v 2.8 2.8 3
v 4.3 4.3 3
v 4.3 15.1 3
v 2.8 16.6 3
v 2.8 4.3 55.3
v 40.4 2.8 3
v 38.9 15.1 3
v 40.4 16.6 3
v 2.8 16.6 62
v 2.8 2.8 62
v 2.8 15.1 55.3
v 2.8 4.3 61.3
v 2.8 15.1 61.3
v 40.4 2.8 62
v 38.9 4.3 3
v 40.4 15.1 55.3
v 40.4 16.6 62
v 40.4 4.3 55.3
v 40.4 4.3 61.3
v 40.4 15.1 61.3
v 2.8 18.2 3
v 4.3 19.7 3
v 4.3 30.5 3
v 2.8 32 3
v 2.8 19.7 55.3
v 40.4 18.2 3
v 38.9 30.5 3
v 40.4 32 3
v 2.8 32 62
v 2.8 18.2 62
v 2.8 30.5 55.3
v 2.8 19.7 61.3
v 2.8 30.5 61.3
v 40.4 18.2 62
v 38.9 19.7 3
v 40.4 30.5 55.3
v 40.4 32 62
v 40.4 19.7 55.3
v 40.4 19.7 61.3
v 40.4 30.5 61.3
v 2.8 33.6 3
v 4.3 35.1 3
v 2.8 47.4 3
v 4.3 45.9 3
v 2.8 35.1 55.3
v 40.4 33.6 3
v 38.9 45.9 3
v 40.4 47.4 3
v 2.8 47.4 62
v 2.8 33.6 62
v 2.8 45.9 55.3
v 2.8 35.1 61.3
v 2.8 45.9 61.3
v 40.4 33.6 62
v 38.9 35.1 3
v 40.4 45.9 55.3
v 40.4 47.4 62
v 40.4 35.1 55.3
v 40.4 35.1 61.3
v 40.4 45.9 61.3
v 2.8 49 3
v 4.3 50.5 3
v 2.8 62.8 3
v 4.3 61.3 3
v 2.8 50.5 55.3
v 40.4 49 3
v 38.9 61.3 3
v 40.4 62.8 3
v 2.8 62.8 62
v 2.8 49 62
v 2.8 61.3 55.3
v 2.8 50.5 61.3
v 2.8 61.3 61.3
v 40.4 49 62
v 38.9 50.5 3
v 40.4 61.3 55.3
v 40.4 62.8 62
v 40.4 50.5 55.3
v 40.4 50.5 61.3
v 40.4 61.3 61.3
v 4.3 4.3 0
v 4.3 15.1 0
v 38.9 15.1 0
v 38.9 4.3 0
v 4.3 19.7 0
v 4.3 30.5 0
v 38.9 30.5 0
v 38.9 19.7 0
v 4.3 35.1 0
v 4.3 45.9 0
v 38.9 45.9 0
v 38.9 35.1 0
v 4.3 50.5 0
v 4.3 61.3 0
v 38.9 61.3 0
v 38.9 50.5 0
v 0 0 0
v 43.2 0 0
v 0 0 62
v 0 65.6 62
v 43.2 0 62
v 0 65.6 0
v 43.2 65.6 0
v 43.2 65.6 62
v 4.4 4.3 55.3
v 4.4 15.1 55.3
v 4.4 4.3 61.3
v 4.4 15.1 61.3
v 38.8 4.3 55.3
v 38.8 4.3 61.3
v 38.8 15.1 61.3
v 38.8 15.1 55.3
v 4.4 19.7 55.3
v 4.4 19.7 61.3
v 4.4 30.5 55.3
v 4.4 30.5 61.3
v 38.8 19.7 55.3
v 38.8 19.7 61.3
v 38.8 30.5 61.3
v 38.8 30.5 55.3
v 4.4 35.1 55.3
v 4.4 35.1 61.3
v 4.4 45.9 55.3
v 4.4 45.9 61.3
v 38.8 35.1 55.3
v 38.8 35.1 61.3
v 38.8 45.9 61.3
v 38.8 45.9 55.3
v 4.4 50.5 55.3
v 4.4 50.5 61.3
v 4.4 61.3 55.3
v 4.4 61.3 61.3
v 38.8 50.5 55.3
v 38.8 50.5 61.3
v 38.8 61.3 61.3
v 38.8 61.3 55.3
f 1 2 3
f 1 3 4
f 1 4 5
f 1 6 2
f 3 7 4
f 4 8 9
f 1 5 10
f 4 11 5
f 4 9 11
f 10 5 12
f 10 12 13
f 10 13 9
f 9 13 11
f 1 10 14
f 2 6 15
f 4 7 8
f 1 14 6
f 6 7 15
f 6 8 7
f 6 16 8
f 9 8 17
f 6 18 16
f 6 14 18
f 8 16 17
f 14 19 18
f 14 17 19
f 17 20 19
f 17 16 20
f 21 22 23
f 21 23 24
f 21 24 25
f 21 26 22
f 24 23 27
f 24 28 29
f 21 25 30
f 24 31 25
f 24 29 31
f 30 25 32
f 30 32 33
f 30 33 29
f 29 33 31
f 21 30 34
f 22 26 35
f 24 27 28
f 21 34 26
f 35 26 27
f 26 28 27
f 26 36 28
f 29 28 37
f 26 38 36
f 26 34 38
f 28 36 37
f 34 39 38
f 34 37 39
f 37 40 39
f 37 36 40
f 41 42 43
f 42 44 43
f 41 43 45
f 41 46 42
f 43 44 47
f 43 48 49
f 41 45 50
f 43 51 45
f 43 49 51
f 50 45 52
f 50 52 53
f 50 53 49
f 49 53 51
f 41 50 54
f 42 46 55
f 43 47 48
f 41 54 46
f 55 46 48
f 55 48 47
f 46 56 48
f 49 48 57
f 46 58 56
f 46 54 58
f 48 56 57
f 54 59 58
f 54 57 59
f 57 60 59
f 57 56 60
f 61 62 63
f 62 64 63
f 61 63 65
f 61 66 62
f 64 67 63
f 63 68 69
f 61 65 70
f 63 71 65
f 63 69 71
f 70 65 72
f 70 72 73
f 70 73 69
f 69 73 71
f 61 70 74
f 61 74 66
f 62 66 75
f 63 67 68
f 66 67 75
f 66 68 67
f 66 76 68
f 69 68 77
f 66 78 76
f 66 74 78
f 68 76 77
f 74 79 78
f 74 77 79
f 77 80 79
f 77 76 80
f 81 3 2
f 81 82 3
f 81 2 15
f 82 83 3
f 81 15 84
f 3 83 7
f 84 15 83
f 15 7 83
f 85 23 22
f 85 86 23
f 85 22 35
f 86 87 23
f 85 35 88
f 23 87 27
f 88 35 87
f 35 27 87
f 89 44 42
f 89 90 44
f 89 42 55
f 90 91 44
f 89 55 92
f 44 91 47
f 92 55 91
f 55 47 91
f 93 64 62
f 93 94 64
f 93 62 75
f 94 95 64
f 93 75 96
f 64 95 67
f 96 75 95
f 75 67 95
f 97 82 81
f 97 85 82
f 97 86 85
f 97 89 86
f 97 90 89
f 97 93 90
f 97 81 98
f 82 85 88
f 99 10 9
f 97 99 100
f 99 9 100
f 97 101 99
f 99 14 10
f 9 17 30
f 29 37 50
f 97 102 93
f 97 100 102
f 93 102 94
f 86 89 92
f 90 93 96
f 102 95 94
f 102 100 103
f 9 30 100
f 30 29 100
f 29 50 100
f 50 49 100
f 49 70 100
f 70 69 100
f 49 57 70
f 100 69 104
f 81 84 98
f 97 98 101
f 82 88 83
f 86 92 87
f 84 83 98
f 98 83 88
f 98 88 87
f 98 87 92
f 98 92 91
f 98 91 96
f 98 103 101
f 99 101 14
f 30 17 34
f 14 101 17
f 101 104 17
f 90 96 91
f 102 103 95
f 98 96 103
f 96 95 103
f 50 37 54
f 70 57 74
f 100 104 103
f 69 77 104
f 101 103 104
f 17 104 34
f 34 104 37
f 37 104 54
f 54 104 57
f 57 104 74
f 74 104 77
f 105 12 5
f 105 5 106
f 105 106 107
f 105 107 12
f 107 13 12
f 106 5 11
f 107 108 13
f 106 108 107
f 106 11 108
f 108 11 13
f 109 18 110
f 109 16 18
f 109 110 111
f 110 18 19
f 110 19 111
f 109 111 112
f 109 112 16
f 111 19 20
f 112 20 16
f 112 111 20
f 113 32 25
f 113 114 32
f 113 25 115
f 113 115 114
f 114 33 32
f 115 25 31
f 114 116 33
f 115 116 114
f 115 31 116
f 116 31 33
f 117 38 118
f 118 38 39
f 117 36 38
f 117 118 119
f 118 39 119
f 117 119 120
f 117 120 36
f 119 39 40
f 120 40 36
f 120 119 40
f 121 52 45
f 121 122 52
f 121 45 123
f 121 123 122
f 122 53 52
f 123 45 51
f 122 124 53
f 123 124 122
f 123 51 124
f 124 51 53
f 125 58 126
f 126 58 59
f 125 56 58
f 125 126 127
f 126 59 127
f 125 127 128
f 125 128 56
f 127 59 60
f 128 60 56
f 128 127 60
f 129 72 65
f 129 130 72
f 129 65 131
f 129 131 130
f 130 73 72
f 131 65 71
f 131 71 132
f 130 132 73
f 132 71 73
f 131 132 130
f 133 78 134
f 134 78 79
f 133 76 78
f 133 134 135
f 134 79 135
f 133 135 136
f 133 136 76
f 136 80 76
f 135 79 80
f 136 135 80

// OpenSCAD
// Olympus BLS-5 Battery Case
// 4-slot linear holder with snap-fit tabs and finger holes for removal

// Battery dimensions (mm)
battery_height = 56;
battery_width = 36;
battery_thickness = 13;

// Design parameters
clearance_x = 0.8;         // side-to-side clearance
clearance_y = 0.8;         // front-back clearance between batteries
wall_thickness = 2.8;      // outer wall thickness
partition_thickness = 1.6; // walls between slots
base_thickness = 3;        // bottom thickness
top_clearance = 3;         // space above battery for snap-fit area

// Derived dimensions
slot_width = battery_width + 2 * clearance_x;
slot_length = battery_thickness + clearance_y;
case_height = base_thickness + battery_height + top_clearance;
outer_x = slot_width + 2 * wall_thickness;
outer_y = 4 * slot_length + 3 * partition_thickness + 2 * wall_thickness;
slot_height = case_height - base_thickness; // extends up to open top (no lid)

module battery_slots() {
    for (i = [0:3]) {
        translate([
            wall_thickness,
            wall_thickness + i * (slot_length + partition_thickness),
            base_thickness
        ])
        cube([slot_width, slot_length, slot_height], center = false);
    }
}

module finger_holes() {
    hole_width = slot_width - 3;
    hole_length = slot_length - 3;
    hole_height = base_thickness;

    for (i = [0:3]) {
        slot_y = wall_thickness + i * (slot_length + partition_thickness);
        translate([
            wall_thickness + (slot_width - hole_width) / 2,
            slot_y + (slot_length - hole_length) / 2,
            0
        ])
        cube([hole_width, hole_length, hole_height], center = false);
    }
}

module snap_tabs() {
    tab_protrusion = 1.6;
    tab_overlap = 0.5;
    tab_length = max(slot_length - 3, 6);
    tab_height = 6;
    tab_z = base_thickness + slot_height - tab_height - 0.7;

    for (i = [0:3]) {
        slot_y = wall_thickness + i * (slot_length + partition_thickness);
        tab_y = slot_y + (slot_length - tab_length) / 2;

        // Left tab
        translate([
            wall_thickness - tab_overlap,
            tab_y,
            tab_z
        ])
        cube([tab_protrusion + tab_overlap, tab_length, tab_height], center = false);

        // Right tab
        translate([
            wall_thickness + slot_width - tab_protrusion,
            tab_y,
            tab_z
        ])
        cube([tab_protrusion + tab_overlap, tab_length, tab_height], center = false);
    }
}

// Main case geometry
difference() {
    // Outer shell
    cube([outer_x, outer_y, case_height], center = false);
    // Subtract the battery cavities
    battery_slots();
    // Subtract finger holes at the bottom for removal
    finger_holes();
}

// Add the snap-fit tabs after the subtraction so they remain
snap_tabs();
